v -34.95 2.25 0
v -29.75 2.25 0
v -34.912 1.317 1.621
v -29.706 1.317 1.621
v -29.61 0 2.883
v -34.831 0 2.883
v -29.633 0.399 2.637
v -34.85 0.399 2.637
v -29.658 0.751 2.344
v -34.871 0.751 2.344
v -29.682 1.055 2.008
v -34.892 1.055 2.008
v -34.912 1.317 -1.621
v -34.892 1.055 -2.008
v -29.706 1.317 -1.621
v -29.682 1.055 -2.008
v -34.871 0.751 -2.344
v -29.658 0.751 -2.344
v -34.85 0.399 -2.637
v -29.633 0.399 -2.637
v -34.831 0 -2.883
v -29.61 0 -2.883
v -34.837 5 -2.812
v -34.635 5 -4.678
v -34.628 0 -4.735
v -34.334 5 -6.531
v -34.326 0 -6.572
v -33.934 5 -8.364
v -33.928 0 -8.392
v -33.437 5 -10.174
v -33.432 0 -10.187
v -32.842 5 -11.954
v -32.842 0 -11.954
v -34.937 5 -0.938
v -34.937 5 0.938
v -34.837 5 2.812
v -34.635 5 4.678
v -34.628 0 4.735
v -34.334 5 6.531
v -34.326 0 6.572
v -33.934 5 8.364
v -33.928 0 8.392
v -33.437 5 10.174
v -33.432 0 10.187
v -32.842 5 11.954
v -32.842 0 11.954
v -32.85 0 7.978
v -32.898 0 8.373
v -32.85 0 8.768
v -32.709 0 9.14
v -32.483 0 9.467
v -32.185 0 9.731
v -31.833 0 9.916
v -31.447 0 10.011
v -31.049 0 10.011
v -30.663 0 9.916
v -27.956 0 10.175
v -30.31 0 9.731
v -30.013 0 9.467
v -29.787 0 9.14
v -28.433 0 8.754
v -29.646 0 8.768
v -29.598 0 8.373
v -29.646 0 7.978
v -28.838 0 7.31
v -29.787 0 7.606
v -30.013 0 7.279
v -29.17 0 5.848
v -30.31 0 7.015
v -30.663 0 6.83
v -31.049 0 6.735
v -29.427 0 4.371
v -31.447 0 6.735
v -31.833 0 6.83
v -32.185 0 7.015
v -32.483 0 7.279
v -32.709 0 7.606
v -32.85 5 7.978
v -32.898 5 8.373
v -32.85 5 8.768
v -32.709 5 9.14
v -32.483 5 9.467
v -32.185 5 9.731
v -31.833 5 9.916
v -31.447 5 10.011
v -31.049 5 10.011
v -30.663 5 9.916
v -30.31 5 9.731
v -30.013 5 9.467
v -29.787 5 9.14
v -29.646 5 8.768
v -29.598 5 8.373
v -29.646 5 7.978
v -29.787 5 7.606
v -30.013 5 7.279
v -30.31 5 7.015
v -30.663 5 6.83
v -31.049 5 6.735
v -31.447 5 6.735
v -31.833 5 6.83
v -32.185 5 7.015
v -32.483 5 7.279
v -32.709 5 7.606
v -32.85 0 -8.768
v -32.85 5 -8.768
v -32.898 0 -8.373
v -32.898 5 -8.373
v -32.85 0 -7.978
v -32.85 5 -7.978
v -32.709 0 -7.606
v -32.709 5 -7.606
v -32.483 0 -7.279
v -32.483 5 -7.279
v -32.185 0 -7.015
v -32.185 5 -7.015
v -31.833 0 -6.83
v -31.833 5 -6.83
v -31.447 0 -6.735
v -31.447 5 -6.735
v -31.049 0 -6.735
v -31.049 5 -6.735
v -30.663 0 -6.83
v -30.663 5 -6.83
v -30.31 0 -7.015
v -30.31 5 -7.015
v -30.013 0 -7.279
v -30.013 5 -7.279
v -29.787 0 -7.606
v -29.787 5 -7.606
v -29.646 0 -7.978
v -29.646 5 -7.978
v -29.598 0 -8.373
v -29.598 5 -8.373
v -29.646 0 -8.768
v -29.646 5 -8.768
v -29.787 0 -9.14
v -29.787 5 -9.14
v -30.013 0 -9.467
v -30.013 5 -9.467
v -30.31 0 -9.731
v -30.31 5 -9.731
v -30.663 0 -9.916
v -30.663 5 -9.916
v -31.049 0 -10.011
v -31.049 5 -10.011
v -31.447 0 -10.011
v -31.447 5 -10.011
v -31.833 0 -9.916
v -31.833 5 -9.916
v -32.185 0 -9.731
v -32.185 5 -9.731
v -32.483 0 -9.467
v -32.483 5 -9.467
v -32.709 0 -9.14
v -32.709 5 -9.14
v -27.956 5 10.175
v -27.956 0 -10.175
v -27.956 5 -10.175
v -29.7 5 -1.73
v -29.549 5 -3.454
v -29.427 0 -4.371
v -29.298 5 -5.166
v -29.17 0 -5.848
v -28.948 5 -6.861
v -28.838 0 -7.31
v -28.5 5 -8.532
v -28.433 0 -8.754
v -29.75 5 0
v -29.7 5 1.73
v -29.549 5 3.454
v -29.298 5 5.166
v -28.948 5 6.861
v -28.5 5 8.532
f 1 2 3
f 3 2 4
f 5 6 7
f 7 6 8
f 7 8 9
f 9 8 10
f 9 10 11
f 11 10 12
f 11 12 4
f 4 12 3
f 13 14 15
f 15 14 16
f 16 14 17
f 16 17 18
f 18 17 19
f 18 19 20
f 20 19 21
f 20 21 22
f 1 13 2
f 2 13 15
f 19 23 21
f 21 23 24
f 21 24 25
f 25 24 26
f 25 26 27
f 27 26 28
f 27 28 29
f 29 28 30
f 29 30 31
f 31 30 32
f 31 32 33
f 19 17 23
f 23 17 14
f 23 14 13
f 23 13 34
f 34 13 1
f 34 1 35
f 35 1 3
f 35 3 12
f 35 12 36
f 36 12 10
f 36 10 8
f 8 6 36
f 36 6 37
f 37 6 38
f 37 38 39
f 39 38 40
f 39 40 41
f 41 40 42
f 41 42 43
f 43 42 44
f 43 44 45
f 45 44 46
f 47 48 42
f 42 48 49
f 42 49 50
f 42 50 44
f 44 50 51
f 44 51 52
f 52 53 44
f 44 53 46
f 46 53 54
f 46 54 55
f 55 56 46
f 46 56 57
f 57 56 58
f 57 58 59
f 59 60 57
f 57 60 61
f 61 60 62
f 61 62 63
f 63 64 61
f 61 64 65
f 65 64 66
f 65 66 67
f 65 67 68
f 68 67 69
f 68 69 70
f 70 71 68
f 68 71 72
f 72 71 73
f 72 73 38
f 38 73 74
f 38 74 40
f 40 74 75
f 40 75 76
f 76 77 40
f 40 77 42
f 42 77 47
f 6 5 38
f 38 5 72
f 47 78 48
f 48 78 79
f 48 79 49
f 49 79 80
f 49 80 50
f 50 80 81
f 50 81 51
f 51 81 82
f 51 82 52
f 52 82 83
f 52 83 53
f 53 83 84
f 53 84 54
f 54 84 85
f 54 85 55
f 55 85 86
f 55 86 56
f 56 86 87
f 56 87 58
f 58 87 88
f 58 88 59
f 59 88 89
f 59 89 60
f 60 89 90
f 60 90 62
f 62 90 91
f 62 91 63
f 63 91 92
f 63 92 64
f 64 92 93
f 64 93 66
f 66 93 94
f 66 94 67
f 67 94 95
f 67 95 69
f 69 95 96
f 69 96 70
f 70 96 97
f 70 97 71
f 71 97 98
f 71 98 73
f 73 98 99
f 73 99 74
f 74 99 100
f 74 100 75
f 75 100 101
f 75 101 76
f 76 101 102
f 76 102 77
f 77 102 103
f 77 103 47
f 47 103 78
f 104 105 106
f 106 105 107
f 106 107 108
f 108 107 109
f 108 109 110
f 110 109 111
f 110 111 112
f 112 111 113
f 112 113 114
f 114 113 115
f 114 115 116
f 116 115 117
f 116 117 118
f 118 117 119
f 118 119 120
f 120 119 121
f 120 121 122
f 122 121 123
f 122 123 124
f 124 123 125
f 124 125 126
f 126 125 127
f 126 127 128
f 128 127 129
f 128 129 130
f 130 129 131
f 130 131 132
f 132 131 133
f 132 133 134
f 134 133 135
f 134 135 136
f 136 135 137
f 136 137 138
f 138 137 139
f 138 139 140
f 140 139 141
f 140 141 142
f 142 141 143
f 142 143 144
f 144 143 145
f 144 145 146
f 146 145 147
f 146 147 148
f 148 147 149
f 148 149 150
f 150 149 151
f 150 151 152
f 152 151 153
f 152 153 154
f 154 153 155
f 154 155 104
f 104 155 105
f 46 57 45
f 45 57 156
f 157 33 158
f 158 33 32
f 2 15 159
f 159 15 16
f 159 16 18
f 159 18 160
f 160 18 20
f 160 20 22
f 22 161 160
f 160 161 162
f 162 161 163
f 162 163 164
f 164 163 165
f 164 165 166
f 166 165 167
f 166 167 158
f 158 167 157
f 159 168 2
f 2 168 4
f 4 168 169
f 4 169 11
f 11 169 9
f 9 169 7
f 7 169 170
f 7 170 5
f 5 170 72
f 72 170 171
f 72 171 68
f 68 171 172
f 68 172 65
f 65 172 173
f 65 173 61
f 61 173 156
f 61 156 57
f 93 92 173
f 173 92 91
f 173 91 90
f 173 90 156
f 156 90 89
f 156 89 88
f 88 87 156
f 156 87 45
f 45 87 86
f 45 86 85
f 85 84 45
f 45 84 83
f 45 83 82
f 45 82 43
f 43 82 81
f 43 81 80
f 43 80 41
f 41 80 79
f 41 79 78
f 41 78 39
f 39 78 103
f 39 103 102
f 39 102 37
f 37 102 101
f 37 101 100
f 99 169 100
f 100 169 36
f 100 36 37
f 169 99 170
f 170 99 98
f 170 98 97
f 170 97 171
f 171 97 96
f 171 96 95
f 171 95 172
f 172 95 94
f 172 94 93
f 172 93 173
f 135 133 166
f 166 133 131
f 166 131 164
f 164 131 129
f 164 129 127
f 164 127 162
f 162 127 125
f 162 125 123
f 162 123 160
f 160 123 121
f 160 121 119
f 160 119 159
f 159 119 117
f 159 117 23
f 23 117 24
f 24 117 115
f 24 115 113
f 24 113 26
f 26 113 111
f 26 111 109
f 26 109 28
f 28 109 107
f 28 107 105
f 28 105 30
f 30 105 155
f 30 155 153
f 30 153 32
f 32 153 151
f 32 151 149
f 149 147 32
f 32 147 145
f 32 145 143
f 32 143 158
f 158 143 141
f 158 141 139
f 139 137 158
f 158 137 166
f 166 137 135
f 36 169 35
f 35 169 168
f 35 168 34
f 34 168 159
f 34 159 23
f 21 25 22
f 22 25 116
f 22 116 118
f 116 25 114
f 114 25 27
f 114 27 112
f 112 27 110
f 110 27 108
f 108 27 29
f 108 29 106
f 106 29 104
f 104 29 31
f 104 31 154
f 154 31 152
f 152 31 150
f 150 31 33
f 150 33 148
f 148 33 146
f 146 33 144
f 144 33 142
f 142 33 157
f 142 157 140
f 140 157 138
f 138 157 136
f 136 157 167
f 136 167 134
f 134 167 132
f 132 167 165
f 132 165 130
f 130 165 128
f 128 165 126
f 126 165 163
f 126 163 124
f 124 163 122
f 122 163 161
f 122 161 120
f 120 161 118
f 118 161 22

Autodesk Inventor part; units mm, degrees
ref_plane "YZ Plane" through (0, 0, 0) normal (1, 0, 0) x (0, 1, 0)
ref_plane "XZ Plane" through (0, 0, 0) normal (0, 1, 0) x (-1, 0, 0)
ref_plane "XY Plane" through (0, 0, 0) normal (0, 0, 1) x (1, 0, 0)
sketch "Sketch1" plane through (0, 0, 0) normal (0, 1, 0) x (-1, 0, 0)
  circle A0 centre (0, 0) radius 34.95
  circle A1 centre (0, 0) radius 29.75
  line L0 (0, 0) -> (41.2193, -15.0026)
  line L1 (0, 0) -> (43.8647, 0) construction
  line L2 (0, 0) -> (47.0412, -17.1216)
  line L3 (0, 0) -> (50.0602, 0) construction
  line L4 (0, 0) -> (41.5964, 15.1399)
  line L5 (0, 0) -> (44.266, 0) construction
  point P0 (32.8423, 11.9536)
  point P1 (27.9559, 10.1751)
  point P2 (27.9559, -10.1751)
  point P3 (32.8423, -11.9536)
  dimension "d0" = 69.9
  dimension "d1" = 59.5
  dimension "d2" = 20
  dimension "d3" = 340
  dimension "d4" = 20
extrude "Extrusion1" add sketch "Sketch1" along normal blind 5 contours A0 L0 A1 L4 picked at (33.1379, 1.3525)
sketch "Sketch2" plane through (0, 0, 0) normal (1, 0, 0) x (0, 1, 0)
  line L0 (0, 0) -> (0, -1)
  line L1 (0, 10.1751) -> (0, -10.1751) projected
  line L2 (0, -1) -> (0, 1)
  line L3 (0, 0) -> (1, 0)
  line L4 (1, 0) -> (0, 1)
  line L5 (0, 0) -> (-1.5, 0)
  circle A0 centre (-1.5, 0) radius 3.25
  line L6 (1.75, 0) -> (2.25, 0)
  line L7 (2.25, 0) -> (1.3167, -1.6214)
  line L8 (2.25, 0) -> (1.3167, 1.6214)
  point P0 (0, 2.8831)
  point P1 (0, -2.8831)
  dimension "d7" = 1
  dimension "d8" = 2
  dimension "d9" = 1
  dimension "d16" = 1.5
  dimension "d17" = 6.5
  dimension "d18" = 0.5
sketch "Sketch3" plane through (0, 5, 0) normal (0, 1, 0) x (1, 0, 0)
  line L0 (0, 0) -> (-39.1232, 10.483)
  line L1 (0, 0) -> (40.5033, 0) construction
  line L2 (0, 0) -> (-4.9273, 0)
  arc A0 (-32.8423, 11.9536) -> (-32.8423, -11.9536) centre (0, 0) ccw projected
  line L3 (-33.7591, 9.0457) -> (-28.7363, 7.6999)
  arc A1 (-27.9559, 10.1751) -> (-27.9559, -10.1751) centre (0, 0) ccw projected
  circle A2 centre (-31.2477, 8.3728) radius 1.65
  circle A3 centre (-31.2477, -8.3728) radius 1.65
  dimension "d12" = 165
  dimension "d13" = 3.3
extrude "Extrusion3" cut sketch "Sketch3" against normal blind 100
extrude "Extrusion4" cut sketch "Sketch2" against normal blind 200 contours L3 L4 L1 A0 L0 | L1 L4 L3 | A0 L6 L7 | L8 L6 A0
properties part number "cable_jig_clamp"
